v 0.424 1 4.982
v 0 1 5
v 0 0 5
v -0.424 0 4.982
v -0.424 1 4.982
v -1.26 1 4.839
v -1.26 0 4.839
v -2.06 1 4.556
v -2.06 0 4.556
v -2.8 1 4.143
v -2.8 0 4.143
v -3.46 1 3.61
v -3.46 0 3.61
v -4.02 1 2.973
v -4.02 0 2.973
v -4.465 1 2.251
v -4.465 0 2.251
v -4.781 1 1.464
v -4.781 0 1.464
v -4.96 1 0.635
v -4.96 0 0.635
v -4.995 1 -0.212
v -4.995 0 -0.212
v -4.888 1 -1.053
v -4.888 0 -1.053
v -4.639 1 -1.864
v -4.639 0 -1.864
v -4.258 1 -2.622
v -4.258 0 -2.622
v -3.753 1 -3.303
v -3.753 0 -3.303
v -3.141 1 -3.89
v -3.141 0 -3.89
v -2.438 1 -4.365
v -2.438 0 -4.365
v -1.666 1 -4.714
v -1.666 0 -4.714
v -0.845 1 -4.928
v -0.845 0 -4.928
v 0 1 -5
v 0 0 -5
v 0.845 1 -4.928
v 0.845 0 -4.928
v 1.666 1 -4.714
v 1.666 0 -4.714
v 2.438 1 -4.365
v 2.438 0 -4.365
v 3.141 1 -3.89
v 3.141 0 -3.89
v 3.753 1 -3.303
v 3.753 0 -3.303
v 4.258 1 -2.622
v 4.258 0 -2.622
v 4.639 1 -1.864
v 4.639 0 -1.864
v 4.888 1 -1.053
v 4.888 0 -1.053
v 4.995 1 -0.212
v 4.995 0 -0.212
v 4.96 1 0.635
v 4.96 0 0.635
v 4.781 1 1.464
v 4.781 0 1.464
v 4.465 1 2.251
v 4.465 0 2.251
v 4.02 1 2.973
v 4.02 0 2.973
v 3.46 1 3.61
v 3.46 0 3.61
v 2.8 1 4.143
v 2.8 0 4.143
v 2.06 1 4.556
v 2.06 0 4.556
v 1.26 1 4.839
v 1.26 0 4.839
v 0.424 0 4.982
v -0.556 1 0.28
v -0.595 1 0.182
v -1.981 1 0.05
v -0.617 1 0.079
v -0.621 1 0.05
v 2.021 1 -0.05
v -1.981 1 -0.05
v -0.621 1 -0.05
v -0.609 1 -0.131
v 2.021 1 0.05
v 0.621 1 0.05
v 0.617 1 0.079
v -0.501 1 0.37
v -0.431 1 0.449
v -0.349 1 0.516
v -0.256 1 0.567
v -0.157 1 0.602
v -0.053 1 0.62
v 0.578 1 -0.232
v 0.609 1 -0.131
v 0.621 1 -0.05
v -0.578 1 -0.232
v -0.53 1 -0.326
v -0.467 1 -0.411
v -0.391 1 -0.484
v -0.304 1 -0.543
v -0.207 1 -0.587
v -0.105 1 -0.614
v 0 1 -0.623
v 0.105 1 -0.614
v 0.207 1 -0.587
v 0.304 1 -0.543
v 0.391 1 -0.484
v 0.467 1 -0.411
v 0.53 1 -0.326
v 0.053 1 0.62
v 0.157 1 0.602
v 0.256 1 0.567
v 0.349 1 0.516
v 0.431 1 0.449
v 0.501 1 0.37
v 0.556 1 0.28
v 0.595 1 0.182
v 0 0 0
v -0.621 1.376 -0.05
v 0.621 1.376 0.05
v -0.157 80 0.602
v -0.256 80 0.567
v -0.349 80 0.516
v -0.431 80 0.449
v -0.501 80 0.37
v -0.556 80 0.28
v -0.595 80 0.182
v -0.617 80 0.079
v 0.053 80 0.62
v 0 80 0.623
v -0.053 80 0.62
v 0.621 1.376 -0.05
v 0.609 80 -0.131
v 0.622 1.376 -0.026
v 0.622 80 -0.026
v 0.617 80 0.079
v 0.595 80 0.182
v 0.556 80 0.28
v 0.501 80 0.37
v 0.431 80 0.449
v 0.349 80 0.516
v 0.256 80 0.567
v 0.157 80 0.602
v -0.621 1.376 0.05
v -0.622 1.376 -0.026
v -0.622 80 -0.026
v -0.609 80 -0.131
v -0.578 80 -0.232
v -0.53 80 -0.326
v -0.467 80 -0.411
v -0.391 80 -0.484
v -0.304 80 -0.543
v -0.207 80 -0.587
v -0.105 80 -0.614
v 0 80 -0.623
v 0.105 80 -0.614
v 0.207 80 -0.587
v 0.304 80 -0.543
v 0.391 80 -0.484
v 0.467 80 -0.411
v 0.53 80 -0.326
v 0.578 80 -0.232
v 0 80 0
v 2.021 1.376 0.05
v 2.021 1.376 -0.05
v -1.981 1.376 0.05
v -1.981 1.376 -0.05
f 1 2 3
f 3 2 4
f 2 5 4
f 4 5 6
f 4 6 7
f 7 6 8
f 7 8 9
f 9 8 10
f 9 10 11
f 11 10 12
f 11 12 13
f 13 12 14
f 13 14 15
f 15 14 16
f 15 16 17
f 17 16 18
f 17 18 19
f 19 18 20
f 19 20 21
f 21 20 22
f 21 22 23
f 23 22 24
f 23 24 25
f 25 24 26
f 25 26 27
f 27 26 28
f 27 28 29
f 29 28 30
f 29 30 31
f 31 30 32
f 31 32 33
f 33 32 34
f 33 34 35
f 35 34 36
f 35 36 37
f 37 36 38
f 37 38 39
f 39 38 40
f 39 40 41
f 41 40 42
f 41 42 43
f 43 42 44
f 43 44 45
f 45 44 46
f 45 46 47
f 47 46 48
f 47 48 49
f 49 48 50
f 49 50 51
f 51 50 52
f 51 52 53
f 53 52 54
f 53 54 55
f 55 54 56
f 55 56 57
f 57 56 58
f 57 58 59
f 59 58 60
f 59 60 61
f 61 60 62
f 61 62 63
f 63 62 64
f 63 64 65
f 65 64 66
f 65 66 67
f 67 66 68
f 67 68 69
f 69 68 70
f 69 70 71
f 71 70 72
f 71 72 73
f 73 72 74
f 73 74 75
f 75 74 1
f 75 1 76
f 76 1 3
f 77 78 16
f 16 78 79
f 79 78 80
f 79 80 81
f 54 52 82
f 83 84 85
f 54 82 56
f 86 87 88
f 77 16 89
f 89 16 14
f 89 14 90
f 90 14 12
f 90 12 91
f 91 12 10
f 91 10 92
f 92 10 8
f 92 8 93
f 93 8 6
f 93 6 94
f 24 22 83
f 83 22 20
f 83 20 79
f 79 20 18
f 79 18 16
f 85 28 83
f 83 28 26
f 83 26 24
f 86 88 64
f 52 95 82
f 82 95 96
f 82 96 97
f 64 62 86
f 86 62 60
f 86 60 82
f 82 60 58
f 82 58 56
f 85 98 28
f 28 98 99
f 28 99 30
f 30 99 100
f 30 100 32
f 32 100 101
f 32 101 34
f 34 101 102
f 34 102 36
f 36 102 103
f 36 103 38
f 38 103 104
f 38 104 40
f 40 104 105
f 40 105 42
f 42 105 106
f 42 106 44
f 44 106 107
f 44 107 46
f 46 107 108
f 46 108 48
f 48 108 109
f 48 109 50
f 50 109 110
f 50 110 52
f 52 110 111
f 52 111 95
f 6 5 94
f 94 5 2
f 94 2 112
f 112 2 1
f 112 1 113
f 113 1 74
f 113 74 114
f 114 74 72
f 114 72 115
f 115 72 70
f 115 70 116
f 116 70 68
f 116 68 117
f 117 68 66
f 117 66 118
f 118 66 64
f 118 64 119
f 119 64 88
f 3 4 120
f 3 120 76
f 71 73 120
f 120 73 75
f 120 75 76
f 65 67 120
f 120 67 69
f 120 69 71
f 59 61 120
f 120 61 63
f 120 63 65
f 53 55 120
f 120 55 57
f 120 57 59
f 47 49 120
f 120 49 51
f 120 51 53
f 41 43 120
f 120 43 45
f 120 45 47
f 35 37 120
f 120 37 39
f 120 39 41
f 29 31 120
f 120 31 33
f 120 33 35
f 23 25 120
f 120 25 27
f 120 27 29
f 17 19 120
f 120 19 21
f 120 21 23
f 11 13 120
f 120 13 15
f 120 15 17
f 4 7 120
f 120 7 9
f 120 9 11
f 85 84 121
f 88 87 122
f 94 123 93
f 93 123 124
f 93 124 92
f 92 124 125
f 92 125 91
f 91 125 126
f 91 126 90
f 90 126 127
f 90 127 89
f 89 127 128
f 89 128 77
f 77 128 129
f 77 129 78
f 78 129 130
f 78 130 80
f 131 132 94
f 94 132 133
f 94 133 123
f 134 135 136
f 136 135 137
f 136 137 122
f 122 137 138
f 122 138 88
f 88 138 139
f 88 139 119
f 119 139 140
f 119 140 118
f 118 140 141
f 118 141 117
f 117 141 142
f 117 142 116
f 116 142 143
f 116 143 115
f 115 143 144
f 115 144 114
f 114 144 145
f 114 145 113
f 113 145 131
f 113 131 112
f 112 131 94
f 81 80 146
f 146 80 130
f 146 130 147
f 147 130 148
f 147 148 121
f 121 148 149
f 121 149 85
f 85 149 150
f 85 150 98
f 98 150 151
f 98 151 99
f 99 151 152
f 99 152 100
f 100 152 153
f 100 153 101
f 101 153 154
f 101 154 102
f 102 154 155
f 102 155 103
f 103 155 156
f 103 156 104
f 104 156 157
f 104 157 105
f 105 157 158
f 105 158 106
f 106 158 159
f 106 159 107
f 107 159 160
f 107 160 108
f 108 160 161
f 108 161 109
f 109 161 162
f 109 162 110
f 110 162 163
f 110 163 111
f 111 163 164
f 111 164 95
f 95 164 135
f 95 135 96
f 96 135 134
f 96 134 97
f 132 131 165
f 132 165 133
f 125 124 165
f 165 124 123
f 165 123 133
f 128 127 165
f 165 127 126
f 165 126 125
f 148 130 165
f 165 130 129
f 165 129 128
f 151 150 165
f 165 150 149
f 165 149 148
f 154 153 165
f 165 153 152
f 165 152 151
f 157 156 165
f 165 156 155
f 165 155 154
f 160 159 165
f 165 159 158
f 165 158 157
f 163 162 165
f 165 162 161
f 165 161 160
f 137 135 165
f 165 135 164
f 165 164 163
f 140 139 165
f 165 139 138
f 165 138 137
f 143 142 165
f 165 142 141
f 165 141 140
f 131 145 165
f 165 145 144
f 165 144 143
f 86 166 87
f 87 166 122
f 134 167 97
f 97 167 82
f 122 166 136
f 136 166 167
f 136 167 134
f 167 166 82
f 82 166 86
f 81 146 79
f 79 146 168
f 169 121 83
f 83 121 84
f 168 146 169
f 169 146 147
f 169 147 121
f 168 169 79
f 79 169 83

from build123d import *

# Parameters (mm, degrees)
SKETCH_1_R      = 5
EXTRUDE_1_DEPTH = 1
SKETCH_2_R      = 0.622519756
EXTRUDE_2_DEPTH = 80
SKETCH_3_W      = 4.001607156
SKETCH_3_H      = 1.375795034
EXTRUDE_3_DEPTH = 0.05


with BuildPart() as part:
    # 草图1 → 凸台-拉伸1 (new body)
    with BuildSketch(Plane(origin=(0, 0, 0), x_dir=(1, 0, 0), z_dir=(0, 1, 0))):
        with Locations(Location((0, 0, 0), (0, 0, 270))):
            Circle(SKETCH_1_R)
    extrude(amount=EXTRUDE_1_DEPTH)

    # 草图2 → 凸台-拉伸2 (add)
    with BuildSketch(Plane(origin=(0, 0, 0), x_dir=(1, 0, 0), z_dir=(0, 1, 0))):
        with Locations(Location((0, 0, 0), (0, 0, 270))):
            Circle(SKETCH_2_R)
    extrude(amount=EXTRUDE_2_DEPTH)

    # 草图3 → 凸台-拉伸3 (add, symmetric)
    with BuildSketch(Plane.XY):
        with Locations((0.019961676, 0.687897517)):
            Rectangle(SKETCH_3_W, SKETCH_3_H)
    extrude(amount=EXTRUDE_3_DEPTH, both=True)


solid = part.part
